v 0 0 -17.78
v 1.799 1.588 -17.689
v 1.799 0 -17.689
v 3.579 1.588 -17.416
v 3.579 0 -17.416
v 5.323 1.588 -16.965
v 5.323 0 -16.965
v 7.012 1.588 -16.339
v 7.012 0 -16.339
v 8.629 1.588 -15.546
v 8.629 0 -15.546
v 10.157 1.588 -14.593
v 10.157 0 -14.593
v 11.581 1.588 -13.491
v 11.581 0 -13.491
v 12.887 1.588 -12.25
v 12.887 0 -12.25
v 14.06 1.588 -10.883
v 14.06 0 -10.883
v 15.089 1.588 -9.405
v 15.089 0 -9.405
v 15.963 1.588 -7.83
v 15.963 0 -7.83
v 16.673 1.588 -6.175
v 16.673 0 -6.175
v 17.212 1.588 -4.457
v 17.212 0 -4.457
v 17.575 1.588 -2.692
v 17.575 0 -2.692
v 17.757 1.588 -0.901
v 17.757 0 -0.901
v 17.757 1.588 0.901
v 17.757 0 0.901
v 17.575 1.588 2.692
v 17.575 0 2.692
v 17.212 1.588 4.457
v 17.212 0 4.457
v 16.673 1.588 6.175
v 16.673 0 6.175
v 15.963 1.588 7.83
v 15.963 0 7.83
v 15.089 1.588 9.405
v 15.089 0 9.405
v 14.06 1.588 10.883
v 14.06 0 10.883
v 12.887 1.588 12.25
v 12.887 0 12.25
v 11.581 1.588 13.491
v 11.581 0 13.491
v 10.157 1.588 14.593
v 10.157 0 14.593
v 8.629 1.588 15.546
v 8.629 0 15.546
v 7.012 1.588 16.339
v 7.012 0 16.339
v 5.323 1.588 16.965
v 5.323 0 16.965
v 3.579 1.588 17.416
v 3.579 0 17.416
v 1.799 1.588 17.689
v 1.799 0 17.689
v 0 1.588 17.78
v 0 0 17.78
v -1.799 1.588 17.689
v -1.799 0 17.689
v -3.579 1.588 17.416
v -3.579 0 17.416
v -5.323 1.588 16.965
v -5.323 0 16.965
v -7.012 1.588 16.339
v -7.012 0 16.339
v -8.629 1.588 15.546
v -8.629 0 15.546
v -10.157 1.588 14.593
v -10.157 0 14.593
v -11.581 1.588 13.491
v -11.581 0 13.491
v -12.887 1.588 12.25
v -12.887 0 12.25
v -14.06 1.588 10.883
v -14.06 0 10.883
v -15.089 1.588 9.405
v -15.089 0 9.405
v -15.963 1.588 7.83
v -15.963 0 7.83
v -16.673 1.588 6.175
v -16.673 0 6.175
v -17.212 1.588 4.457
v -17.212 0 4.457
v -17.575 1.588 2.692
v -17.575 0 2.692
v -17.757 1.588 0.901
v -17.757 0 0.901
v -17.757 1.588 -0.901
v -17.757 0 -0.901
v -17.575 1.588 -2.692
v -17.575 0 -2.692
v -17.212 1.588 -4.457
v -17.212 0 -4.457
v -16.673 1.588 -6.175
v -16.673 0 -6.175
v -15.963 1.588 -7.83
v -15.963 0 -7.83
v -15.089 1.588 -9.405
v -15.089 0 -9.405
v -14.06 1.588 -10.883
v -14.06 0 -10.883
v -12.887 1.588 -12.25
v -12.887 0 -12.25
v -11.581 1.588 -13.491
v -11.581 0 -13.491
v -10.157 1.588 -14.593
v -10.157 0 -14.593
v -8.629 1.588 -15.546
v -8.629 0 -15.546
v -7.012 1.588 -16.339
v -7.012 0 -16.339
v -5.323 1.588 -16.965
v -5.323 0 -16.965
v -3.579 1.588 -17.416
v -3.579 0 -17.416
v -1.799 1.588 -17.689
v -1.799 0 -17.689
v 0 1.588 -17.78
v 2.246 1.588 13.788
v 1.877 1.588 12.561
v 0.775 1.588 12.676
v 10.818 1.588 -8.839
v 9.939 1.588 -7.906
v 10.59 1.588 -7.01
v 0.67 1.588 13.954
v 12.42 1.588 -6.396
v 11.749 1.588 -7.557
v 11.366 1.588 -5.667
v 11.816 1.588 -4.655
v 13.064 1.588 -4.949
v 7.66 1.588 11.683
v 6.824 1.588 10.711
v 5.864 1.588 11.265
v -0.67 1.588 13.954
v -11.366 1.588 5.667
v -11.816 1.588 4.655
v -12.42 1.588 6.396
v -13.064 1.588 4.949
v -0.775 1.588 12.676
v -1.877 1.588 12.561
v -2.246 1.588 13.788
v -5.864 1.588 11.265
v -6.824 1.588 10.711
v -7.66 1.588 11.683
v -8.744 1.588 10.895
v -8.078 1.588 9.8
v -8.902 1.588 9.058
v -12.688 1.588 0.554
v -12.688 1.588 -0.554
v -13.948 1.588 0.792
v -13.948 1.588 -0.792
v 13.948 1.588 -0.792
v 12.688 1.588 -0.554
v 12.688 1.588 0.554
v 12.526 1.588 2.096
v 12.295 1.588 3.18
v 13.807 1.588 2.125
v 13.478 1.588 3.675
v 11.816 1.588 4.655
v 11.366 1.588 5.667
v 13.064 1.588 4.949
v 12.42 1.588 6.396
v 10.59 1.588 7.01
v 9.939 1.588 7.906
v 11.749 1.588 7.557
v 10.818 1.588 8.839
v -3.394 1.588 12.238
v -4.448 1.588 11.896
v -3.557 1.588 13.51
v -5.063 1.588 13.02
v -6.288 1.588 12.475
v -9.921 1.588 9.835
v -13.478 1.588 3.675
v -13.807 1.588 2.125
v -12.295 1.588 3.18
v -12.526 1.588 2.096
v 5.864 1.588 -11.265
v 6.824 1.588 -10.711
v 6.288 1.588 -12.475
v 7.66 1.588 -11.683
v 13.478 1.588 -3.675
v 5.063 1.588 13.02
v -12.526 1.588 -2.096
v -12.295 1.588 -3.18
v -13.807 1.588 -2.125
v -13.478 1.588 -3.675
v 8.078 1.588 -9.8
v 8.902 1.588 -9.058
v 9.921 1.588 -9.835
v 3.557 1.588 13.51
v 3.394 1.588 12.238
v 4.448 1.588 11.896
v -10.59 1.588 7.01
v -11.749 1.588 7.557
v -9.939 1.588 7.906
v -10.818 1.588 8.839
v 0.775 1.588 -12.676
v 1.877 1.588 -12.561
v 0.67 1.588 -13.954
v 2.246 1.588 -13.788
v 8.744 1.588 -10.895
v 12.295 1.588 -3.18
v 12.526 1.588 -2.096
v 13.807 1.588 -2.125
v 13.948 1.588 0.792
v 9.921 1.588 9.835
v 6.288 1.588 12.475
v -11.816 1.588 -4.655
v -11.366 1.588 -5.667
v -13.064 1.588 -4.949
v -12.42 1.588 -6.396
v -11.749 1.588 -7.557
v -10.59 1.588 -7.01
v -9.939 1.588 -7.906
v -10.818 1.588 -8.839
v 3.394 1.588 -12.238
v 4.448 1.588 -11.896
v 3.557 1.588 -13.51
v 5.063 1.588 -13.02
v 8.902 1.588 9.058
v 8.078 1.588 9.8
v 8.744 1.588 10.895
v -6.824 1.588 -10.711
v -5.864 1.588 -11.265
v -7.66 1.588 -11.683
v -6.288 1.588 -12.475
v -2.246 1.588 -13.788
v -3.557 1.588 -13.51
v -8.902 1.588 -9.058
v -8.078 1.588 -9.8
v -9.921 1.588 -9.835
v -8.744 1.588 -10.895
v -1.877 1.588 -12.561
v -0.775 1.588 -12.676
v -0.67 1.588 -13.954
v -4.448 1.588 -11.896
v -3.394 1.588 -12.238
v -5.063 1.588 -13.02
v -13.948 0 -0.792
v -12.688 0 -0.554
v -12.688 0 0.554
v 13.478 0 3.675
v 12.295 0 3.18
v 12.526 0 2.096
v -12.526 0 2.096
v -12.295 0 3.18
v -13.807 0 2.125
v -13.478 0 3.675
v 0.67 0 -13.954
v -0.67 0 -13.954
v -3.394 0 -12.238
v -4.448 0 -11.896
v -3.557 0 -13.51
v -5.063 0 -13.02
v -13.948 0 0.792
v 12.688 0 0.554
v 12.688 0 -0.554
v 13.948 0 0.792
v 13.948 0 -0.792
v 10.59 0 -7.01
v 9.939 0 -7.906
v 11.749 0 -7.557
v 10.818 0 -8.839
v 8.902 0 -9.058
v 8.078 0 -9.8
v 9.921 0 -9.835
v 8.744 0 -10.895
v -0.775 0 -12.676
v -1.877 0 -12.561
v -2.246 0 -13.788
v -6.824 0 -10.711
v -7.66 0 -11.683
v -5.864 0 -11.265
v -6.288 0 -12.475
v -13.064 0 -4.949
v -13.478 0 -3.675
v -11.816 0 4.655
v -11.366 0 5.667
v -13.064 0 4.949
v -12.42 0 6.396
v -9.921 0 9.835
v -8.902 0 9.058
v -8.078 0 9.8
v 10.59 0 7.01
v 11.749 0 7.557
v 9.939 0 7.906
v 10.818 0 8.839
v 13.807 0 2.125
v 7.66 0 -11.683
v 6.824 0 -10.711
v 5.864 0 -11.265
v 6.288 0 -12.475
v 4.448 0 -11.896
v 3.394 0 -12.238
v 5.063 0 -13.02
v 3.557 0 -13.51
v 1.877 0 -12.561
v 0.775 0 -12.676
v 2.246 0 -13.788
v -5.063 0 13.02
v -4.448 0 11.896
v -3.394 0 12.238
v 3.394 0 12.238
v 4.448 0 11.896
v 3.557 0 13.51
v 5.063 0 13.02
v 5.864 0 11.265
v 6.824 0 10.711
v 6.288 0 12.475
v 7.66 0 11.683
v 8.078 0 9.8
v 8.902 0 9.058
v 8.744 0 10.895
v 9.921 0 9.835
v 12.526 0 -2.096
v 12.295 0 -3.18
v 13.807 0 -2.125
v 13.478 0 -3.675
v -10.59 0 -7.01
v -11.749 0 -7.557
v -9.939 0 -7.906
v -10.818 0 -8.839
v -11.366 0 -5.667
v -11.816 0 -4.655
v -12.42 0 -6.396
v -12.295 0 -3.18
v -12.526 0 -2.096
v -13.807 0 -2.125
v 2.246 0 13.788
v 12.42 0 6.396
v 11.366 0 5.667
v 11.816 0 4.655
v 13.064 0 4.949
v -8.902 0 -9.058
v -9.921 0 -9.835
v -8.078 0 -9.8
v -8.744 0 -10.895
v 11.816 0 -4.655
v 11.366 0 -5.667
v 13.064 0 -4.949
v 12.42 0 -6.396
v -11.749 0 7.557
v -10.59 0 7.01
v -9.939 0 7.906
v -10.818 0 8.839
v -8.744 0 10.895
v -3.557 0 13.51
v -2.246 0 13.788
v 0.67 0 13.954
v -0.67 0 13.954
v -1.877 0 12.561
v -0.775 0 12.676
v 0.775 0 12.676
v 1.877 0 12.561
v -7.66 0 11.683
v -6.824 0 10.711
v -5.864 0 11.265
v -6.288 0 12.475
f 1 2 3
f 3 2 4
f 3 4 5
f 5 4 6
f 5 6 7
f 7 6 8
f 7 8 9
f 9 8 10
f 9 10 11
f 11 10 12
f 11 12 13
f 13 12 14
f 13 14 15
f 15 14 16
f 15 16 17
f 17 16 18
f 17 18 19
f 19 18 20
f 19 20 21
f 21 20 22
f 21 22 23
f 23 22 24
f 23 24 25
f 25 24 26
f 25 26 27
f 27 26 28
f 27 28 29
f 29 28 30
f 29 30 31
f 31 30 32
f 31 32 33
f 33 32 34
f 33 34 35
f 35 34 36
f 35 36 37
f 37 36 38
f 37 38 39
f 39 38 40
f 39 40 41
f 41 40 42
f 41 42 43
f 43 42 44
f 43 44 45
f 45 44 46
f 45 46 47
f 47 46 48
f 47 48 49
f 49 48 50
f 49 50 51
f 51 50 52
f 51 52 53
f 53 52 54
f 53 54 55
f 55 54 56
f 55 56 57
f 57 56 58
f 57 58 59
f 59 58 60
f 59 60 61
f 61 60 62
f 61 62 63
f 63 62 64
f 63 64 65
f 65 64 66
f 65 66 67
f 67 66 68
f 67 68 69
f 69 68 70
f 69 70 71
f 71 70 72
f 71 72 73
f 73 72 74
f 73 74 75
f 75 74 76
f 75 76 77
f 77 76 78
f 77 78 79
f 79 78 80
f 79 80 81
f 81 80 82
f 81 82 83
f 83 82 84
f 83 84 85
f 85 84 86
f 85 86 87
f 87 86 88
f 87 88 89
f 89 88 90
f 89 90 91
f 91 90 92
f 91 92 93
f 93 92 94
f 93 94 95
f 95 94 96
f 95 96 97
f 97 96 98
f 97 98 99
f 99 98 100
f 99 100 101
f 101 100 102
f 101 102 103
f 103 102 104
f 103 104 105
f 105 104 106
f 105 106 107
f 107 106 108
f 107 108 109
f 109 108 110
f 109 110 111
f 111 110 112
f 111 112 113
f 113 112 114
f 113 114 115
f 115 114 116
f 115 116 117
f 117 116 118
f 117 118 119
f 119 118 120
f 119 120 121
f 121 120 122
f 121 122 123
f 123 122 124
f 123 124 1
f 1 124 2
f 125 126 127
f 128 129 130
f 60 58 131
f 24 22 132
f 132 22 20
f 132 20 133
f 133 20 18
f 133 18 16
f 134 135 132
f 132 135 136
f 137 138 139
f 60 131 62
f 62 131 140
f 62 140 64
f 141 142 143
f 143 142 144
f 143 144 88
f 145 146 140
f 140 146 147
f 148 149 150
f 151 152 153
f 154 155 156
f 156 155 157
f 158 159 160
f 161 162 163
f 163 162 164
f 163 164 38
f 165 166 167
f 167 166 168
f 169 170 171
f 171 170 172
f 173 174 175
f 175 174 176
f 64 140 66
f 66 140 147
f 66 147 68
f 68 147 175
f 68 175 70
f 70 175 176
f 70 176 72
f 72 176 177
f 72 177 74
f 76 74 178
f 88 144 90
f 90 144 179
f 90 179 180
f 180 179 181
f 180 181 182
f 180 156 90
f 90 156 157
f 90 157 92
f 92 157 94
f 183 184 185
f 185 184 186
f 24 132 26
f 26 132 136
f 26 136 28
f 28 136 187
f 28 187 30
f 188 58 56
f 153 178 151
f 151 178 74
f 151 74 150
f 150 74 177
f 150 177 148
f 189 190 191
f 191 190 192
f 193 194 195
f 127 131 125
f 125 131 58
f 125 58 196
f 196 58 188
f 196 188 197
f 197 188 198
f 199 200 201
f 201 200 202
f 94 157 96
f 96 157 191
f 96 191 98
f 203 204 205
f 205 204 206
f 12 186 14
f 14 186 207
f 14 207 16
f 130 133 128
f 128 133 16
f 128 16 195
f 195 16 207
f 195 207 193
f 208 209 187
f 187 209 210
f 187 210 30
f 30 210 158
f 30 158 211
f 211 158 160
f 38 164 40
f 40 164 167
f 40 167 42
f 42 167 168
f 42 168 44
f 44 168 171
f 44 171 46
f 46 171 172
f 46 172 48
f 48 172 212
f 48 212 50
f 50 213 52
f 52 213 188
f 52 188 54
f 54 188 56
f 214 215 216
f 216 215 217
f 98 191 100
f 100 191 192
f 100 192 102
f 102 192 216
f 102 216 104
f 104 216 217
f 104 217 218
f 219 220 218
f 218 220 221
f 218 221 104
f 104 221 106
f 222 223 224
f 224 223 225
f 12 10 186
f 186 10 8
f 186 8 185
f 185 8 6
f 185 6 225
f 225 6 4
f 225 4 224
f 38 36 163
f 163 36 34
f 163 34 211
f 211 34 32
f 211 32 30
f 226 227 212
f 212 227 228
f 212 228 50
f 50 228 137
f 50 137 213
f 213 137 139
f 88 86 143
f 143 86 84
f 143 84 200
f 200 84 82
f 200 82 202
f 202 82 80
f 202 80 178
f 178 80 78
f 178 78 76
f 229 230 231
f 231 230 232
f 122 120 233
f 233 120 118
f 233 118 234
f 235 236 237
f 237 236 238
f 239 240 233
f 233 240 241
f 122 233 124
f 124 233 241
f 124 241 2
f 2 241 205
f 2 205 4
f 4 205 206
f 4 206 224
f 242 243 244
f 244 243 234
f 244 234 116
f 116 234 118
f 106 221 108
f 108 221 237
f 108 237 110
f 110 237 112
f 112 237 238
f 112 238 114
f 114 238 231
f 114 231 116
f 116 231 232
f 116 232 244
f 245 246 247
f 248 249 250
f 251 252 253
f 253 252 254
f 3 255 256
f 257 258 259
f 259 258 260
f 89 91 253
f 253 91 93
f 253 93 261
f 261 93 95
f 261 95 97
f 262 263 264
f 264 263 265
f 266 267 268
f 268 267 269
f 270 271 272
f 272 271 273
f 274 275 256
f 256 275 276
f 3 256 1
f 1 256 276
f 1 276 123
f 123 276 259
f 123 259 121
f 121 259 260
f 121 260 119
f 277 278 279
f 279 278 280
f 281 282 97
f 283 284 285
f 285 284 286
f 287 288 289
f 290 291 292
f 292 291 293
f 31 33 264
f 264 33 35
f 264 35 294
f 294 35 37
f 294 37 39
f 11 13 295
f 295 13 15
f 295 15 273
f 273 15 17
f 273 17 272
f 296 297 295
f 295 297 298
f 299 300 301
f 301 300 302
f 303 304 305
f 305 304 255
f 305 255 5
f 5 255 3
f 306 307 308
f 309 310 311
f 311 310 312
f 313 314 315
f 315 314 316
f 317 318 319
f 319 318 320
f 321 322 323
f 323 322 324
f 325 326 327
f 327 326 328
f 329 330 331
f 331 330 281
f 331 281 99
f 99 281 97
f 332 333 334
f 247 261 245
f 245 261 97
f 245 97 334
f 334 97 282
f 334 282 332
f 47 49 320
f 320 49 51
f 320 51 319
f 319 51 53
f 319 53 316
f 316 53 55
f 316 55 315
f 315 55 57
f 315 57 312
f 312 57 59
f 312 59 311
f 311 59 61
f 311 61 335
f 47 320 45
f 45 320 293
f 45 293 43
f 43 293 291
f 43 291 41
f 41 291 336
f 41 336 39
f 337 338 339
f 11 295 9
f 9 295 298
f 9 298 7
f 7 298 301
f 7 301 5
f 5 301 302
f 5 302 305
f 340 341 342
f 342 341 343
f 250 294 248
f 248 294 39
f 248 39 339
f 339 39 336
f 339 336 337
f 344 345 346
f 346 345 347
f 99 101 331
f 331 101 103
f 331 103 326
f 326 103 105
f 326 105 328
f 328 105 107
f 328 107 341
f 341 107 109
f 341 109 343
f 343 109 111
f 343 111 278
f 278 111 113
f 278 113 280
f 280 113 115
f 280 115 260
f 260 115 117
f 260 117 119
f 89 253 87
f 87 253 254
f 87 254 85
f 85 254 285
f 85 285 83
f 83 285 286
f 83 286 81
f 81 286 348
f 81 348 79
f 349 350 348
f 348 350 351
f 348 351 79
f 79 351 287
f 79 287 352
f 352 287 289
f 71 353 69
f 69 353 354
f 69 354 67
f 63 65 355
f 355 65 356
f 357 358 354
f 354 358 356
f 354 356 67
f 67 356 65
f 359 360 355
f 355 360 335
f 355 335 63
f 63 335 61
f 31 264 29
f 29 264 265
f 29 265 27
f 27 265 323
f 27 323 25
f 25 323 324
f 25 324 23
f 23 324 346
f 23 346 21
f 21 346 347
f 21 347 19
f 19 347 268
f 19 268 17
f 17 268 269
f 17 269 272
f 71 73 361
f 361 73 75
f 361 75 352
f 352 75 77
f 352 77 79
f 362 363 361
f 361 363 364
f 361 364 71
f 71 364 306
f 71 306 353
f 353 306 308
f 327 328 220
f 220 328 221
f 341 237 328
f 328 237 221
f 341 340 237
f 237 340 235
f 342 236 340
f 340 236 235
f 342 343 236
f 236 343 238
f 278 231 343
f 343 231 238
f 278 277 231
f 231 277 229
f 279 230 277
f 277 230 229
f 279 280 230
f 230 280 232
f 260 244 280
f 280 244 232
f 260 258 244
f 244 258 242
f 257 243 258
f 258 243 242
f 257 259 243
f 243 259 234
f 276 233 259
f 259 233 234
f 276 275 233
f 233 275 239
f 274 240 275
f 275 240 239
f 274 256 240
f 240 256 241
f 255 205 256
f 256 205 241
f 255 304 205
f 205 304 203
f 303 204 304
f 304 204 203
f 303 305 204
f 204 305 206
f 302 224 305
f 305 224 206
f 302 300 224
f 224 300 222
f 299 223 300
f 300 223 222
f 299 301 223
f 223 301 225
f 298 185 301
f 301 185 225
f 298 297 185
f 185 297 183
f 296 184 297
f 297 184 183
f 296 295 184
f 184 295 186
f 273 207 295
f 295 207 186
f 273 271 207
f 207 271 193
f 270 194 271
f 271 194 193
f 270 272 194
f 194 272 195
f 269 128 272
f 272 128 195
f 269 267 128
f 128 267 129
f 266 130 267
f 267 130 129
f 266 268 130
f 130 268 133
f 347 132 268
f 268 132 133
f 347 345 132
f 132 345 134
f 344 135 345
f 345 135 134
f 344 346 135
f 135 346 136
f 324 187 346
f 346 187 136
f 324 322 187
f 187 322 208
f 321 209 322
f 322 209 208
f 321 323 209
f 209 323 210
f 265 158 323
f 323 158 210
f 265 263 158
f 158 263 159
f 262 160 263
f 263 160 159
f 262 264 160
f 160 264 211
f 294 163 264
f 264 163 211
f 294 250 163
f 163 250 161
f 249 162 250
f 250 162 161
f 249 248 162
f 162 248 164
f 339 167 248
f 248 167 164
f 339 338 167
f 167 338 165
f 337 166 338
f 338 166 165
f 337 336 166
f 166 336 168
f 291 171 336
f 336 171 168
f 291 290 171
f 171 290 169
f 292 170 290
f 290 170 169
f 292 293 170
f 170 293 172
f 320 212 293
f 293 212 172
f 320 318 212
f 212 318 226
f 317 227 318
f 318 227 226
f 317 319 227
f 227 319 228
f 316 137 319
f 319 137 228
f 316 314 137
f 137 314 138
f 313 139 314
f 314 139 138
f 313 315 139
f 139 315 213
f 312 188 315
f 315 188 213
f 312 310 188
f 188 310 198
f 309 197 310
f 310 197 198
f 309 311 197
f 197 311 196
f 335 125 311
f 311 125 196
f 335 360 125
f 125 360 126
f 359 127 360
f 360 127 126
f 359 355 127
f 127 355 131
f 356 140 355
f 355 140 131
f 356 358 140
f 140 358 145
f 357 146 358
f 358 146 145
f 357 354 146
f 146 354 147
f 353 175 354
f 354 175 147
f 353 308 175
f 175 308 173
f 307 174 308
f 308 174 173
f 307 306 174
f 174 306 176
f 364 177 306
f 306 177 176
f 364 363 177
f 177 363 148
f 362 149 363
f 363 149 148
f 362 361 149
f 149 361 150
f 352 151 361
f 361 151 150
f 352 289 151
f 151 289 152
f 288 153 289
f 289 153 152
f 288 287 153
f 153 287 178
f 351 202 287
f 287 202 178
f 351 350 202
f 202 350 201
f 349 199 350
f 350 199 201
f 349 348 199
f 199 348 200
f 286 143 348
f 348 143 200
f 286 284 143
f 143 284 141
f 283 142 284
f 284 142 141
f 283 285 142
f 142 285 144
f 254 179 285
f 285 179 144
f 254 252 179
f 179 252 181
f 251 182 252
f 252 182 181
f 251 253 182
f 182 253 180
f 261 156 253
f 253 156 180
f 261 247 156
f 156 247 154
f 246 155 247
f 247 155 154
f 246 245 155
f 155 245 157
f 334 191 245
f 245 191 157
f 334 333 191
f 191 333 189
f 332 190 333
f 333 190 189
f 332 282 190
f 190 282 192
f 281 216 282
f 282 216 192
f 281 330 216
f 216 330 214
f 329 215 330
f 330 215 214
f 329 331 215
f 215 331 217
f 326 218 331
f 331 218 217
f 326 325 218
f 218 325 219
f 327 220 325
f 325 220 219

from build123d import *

# Parameters (mm, degrees)
SKETCH1_R           = 17.78
BOSS_EXTRUDE1_DEPTH = 1.5875
CUT_EXTRUDE1_DEPTH  = 2.5875


with BuildPart() as part:
    # Sketch1 → Boss-Extrude1 (new body)
    with BuildSketch(Plane(origin=(0, 0, 0), x_dir=(1, 0, 0), z_dir=(0, 1, 0))):
        Circle(SKETCH1_R)
    extrude(amount=BOSS_EXTRUDE1_DEPTH)

    # Sketch2 → Cut-Extrude1 (cut, through all)
    with BuildSketch(Plane(origin=(0, 1.5875, 0), x_dir=(1, 0, 0), z_dir=(0, 1, 0))):
        with BuildLine():
            Line((-0.670254455, 13.953911959), (-0.775316452, 12.67631194))
            ThreePointArc((-0.775316452, 12.67631194), (-1.327511483, 12.630428071), (-1.877179521, 12.560501465))
            Line((-1.877179521, 12.560501465), (-2.245573641, 13.788339241))
            ThreePointArc((-2.245573641, 13.788339241), (-2.904526321, 13.664721982), (-3.556789216, 13.509631767))
            Line((-3.556789216, 13.509631767), (-3.393927376, 12.238106756))
            ThreePointArc((-3.393927376, 12.238106756), (-3.924515829, 12.078417757), (-4.447633742, 11.895736803))
            Line((-4.447633742, 11.895736803), (-5.063259395, 13.020149934))
            ThreePointArc((-5.063259395, 13.020149934), (-5.682110904, 12.762230043), (-6.287875221, 12.474915839))
            Line((-6.287875221, 12.474915839), (-5.864207388, 11.265037581))
            ThreePointArc((-5.864207388, 11.265037581), (-6.35, 10.998522628), (-6.823705026, 10.711071362))
            Line((-6.823705026, 10.711071362), (-7.659656416, 11.682917597))
            ThreePointArc((-7.659656416, 11.682917597), (-8.211359975, 11.301967411), (-8.744150906, 10.894986229))
            Line((-8.744150906, 10.894986229), (-8.078193398, 9.799632209))
            ThreePointArc((-8.078193398, 9.799632209), (-8.497958701, 9.437939284), (-8.901547657, 9.058280704))
            Line((-8.901547657, 9.058280704), (-9.921289697, 9.835085701))
            ThreePointArc((-9.921289697, 9.835085701), (-10.381733212, 9.347754571), (-10.818265238, 8.83889344))
            Line((-10.818265238, 8.83889344), (-9.939123592, 7.905935885))
            ThreePointArc((-9.939123592, 7.905935885), (-10.274515829, 7.464872704), (-10.59034994, 7.009599713))
            Line((-10.59034994, 7.009599713), (-11.749315011, 7.557413365))
            ThreePointArc((-11.749315011, 7.557413365), (-12.098374891, 6.985), (-12.419569467, 6.396498594))
            Line((-12.419569467, 6.396498594), (-11.365666392, 5.666712226))
            ThreePointArc((-11.365666392, 5.666712226), (-11.602027312, 5.165555367), (-11.816303113, 4.654565579))
            Line((-11.816303113, 4.654565579), (-13.063838879, 4.949445801))
            ThreePointArc((-13.063838879, 4.949445801), (-13.286259533, 4.316967411), (-13.478078914, 3.674546066))
            Line((-13.478078914, 3.674546066), (-12.295475033, 3.179826051))
            ThreePointArc((-12.295475033, 3.179826051), (-12.422474529, 2.640478473), (-12.52582714, 2.096104594))
            Line((-12.52582714, 2.096104594), (-13.807410301, 2.125163705))
            ThreePointArc((-13.807410301, 2.125163705), (-13.893470878, 1.460262632), (-13.947531638, 0.791998242))
            Line((-13.947531638, 0.791998242), (-12.687912414, 0.55396622))
            ThreePointArc((-12.687912414, 0.55396622), (-12.7, 0), (-12.687912414, -0.55396622))
            Line((-12.687912414, -0.55396622), (-13.947531638, -0.791998242))
            ThreePointArc((-13.947531638, -0.791998242), (-13.893470878, -1.460262632), (-13.807410301, -2.125163705))
            Line((-13.807410301, -2.125163705), (-12.52582714, -2.096104594))
            ThreePointArc((-12.52582714, -2.096104594), (-12.422474529, -2.640478473), (-12.295475033, -3.179826051))
            Line((-12.295475033, -3.179826051), (-13.478078914, -3.674546066))
            ThreePointArc((-13.478078914, -3.674546066), (-13.286259533, -4.316967411), (-13.063838879, -4.949445801))
            Line((-13.063838879, -4.949445801), (-11.816303113, -4.654565579))
            ThreePointArc((-11.816303113, -4.654565579), (-11.602027312, -5.165555367), (-11.365666392, -5.666712226))
            Line((-11.365666392, -5.666712226), (-12.419569467, -6.396498594))
            ThreePointArc((-12.419569467, -6.396498594), (-12.098374891, -6.985), (-11.749315011, -7.557413365))
            Line((-11.749315011, -7.557413365), (-10.59034994, -7.009599713))
            ThreePointArc((-10.59034994, -7.009599713), (-10.274515829, -7.464872704), (-9.939123592, -7.905935885))
            Line((-9.939123592, -7.905935885), (-10.818265238, -8.83889344))
            ThreePointArc((-10.818265238, -8.83889344), (-10.381733212, -9.347754571), (-9.921289697, -9.835085701))
            Line((-9.921289697, -9.835085701), (-8.901547657, -9.058280704))
            ThreePointArc((-8.901547657, -9.058280704), (-8.497958701, -9.437939284), (-8.078193398, -9.799632209))
            Line((-8.078193398, -9.799632209), (-8.744150906, -10.894986229))
            ThreePointArc((-8.744150906, -10.894986229), (-8.211359975, -11.301967411), (-7.659656416, -11.682917597))
            Line((-7.659656416, -11.682917597), (-6.823705026, -10.711071362))
            ThreePointArc((-6.823705026, -10.711071362), (-6.35, -10.998522628), (-5.864207388, -11.265037581))
            Line((-5.864207388, -11.265037581), (-6.287875221, -12.474915839))
            ThreePointArc((-6.287875221, -12.474915839), (-5.682110904, -12.762230043), (-5.063259395, -13.020149934))
            Line((-5.063259395, -13.020149934), (-4.447633742, -11.895736803))
            ThreePointArc((-4.447633742, -11.895736803), (-3.924515829, -12.078417757), (-3.393927376, -12.238106756))
            Line((-3.393927376, -12.238106756), (-3.556789216, -13.509631767))
            ThreePointArc((-3.556789216, -13.509631767), (-2.904526321, -13.664721982), (-2.245573641, -13.788339241))
            Line((-2.245573641, -13.788339241), (-1.877179521, -12.560501465))
            ThreePointArc((-1.877179521, -12.560501465), (-1.327511483, -12.630428071), (-0.775316452, -12.67631194))
            Line((-0.775316452, -12.67631194), (-0.670254455, -13.953911959))
            ThreePointArc((-0.670254455, -13.953911959), (0, -13.97), (0.670254455, -13.953911959))
            Line((0.670254455, -13.953911959), (0.775316452, -12.67631194))
            ThreePointArc((0.775316452, -12.67631194), (1.327511483, -12.630428071), (1.877179521, -12.560501465))
            Line((1.877179521, -12.560501465), (2.245573641, -13.788339241))
            ThreePointArc((2.245573641, -13.788339241), (2.904526321, -13.664721982), (3.556789216, -13.509631767))
            Line((3.556789216, -13.509631767), (3.393927376, -12.238106756))
            ThreePointArc((3.393927376, -12.238106756), (3.924515829, -12.078417757), (4.447633742, -11.895736803))
            Line((4.447633742, -11.895736803), (5.063259395, -13.020149934))
            ThreePointArc((5.063259395, -13.020149934), (5.682110904, -12.762230043), (6.287875221, -12.474915839))
            Line((6.287875221, -12.474915839), (5.864207388, -11.265037581))
            ThreePointArc((5.864207388, -11.265037581), (6.35, -10.998522628), (6.823705026, -10.711071362))
            Line((6.823705026, -10.711071362), (7.659656416, -11.682917597))
            ThreePointArc((7.659656416, -11.682917597), (8.211359975, -11.301967411), (8.744150906, -10.894986229))
            Line((8.744150906, -10.894986229), (8.078193398, -9.799632209))
            ThreePointArc((8.078193398, -9.799632209), (8.497958701, -9.437939284), (8.901547657, -9.058280704))
            Line((8.901547657, -9.058280704), (9.921289697, -9.835085701))
            ThreePointArc((9.921289697, -9.835085701), (10.381733212, -9.347754571), (10.818265238, -8.83889344))
            Line((10.818265238, -8.83889344), (9.939123592, -7.905935885))
            ThreePointArc((9.939123592, -7.905935885), (10.274515829, -7.464872704), (10.59034994, -7.009599713))
            Line((10.59034994, -7.009599713), (11.749315011, -7.557413365))
            ThreePointArc((11.749315011, -7.557413365), (12.098374891, -6.985), (12.419569467, -6.396498594))
            Line((12.419569467, -6.396498594), (11.365666392, -5.666712226))
            ThreePointArc((11.365666392, -5.666712226), (11.602027312, -5.165555367), (11.816303113, -4.654565579))
            Line((11.816303113, -4.654565579), (13.063838879, -4.949445801))
            ThreePointArc((13.063838879, -4.949445801), (13.286259533, -4.316967411), (13.478078914, -3.674546066))
            Line((13.478078914, -3.674546066), (12.295475033, -3.179826051))
            ThreePointArc((12.295475033, -3.179826051), (12.422474529, -2.640478473), (12.52582714, -2.096104594))
            Line((12.52582714, -2.096104594), (13.807410301, -2.125163705))
            ThreePointArc((13.807410301, -2.125163705), (13.893470878, -1.460262632), (13.947531638, -0.791998242))
            Line((13.947531638, -0.791998242), (12.687912414, -0.55396622))
            ThreePointArc((12.687912414, -0.55396622), (12.7, 0), (12.687912414, 0.55396622))
            Line((12.687912414, 0.55396622), (13.947531638, 0.791998242))
            ThreePointArc((13.947531638, 0.791998242), (13.893470878, 1.460262632), (13.807410301, 2.125163705))
            Line((13.807410301, 2.125163705), (12.52582714, 2.096104594))
            ThreePointArc((12.52582714, 2.096104594), (12.422474529, 2.640478473), (12.295475033, 3.179826051))
            Line((12.295475033, 3.179826051), (13.478078914, 3.674546066))
            ThreePointArc((13.478078914, 3.674546066), (13.286259533, 4.316967411), (13.063838879, 4.949445801))
            Line((13.063838879, 4.949445801), (11.816303113, 4.654565579))
            ThreePointArc((11.816303113, 4.654565579), (11.602027312, 5.165555367), (11.365666392, 5.666712226))
            Line((11.365666392, 5.666712226), (12.419569467, 6.396498594))
            ThreePointArc((12.419569467, 6.396498594), (12.098374891, 6.985), (11.749315011, 7.557413365))
            Line((11.749315011, 7.557413365), (10.59034994, 7.009599713))
            ThreePointArc((10.59034994, 7.009599713), (10.274515829, 7.464872704), (9.939123592, 7.905935885))
            Line((9.939123592, 7.905935885), (10.818265238, 8.83889344))
            ThreePointArc((10.818265238, 8.83889344), (10.381733212, 9.347754571), (9.921289697, 9.835085701))
            Line((9.921289697, 9.835085701), (8.901547657, 9.058280704))
            ThreePointArc((8.901547657, 9.058280704), (8.497958701, 9.437939284), (8.078193398, 9.799632209))
            Line((8.078193398, 9.799632209), (8.744150906, 10.894986229))
            ThreePointArc((8.744150906, 10.894986229), (8.211359975, 11.301967411), (7.659656416, 11.682917597))
            Line((7.659656416, 11.682917597), (6.823705026, 10.711071362))
            ThreePointArc((6.823705026, 10.711071362), (6.35, 10.998522628), (5.864207388, 11.265037581))
            Line((5.864207388, 11.265037581), (6.287875221, 12.474915839))
            ThreePointArc((6.287875221, 12.474915839), (5.682110904, 12.762230043), (5.063259395, 13.020149934))
            Line((5.063259395, 13.020149934), (4.447633742, 11.895736803))
            ThreePointArc((4.447633742, 11.895736803), (3.924515829, 12.078417757), (3.393927376, 12.238106756))
            Line((3.393927376, 12.238106756), (3.556789216, 13.509631767))
            ThreePointArc((3.556789216, 13.509631767), (2.904526321, 13.664721982), (2.245573641, 13.788339241))
            Line((2.245573641, 13.788339241), (1.877179521, 12.560501465))
            ThreePointArc((1.877179521, 12.560501465), (1.327511483, 12.630428071), (0.775316452, 12.67631194))
            Line((0.775316452, 12.67631194), (0.670254455, 13.953911959))
            ThreePointArc((0.670254455, 13.953911959), (0, 13.97), (-0.670254455, 13.953911959))
        make_face()
    extrude(amount=-CUT_EXTRUDE1_DEPTH, mode=Mode.SUBTRACT)


solid = part.part
